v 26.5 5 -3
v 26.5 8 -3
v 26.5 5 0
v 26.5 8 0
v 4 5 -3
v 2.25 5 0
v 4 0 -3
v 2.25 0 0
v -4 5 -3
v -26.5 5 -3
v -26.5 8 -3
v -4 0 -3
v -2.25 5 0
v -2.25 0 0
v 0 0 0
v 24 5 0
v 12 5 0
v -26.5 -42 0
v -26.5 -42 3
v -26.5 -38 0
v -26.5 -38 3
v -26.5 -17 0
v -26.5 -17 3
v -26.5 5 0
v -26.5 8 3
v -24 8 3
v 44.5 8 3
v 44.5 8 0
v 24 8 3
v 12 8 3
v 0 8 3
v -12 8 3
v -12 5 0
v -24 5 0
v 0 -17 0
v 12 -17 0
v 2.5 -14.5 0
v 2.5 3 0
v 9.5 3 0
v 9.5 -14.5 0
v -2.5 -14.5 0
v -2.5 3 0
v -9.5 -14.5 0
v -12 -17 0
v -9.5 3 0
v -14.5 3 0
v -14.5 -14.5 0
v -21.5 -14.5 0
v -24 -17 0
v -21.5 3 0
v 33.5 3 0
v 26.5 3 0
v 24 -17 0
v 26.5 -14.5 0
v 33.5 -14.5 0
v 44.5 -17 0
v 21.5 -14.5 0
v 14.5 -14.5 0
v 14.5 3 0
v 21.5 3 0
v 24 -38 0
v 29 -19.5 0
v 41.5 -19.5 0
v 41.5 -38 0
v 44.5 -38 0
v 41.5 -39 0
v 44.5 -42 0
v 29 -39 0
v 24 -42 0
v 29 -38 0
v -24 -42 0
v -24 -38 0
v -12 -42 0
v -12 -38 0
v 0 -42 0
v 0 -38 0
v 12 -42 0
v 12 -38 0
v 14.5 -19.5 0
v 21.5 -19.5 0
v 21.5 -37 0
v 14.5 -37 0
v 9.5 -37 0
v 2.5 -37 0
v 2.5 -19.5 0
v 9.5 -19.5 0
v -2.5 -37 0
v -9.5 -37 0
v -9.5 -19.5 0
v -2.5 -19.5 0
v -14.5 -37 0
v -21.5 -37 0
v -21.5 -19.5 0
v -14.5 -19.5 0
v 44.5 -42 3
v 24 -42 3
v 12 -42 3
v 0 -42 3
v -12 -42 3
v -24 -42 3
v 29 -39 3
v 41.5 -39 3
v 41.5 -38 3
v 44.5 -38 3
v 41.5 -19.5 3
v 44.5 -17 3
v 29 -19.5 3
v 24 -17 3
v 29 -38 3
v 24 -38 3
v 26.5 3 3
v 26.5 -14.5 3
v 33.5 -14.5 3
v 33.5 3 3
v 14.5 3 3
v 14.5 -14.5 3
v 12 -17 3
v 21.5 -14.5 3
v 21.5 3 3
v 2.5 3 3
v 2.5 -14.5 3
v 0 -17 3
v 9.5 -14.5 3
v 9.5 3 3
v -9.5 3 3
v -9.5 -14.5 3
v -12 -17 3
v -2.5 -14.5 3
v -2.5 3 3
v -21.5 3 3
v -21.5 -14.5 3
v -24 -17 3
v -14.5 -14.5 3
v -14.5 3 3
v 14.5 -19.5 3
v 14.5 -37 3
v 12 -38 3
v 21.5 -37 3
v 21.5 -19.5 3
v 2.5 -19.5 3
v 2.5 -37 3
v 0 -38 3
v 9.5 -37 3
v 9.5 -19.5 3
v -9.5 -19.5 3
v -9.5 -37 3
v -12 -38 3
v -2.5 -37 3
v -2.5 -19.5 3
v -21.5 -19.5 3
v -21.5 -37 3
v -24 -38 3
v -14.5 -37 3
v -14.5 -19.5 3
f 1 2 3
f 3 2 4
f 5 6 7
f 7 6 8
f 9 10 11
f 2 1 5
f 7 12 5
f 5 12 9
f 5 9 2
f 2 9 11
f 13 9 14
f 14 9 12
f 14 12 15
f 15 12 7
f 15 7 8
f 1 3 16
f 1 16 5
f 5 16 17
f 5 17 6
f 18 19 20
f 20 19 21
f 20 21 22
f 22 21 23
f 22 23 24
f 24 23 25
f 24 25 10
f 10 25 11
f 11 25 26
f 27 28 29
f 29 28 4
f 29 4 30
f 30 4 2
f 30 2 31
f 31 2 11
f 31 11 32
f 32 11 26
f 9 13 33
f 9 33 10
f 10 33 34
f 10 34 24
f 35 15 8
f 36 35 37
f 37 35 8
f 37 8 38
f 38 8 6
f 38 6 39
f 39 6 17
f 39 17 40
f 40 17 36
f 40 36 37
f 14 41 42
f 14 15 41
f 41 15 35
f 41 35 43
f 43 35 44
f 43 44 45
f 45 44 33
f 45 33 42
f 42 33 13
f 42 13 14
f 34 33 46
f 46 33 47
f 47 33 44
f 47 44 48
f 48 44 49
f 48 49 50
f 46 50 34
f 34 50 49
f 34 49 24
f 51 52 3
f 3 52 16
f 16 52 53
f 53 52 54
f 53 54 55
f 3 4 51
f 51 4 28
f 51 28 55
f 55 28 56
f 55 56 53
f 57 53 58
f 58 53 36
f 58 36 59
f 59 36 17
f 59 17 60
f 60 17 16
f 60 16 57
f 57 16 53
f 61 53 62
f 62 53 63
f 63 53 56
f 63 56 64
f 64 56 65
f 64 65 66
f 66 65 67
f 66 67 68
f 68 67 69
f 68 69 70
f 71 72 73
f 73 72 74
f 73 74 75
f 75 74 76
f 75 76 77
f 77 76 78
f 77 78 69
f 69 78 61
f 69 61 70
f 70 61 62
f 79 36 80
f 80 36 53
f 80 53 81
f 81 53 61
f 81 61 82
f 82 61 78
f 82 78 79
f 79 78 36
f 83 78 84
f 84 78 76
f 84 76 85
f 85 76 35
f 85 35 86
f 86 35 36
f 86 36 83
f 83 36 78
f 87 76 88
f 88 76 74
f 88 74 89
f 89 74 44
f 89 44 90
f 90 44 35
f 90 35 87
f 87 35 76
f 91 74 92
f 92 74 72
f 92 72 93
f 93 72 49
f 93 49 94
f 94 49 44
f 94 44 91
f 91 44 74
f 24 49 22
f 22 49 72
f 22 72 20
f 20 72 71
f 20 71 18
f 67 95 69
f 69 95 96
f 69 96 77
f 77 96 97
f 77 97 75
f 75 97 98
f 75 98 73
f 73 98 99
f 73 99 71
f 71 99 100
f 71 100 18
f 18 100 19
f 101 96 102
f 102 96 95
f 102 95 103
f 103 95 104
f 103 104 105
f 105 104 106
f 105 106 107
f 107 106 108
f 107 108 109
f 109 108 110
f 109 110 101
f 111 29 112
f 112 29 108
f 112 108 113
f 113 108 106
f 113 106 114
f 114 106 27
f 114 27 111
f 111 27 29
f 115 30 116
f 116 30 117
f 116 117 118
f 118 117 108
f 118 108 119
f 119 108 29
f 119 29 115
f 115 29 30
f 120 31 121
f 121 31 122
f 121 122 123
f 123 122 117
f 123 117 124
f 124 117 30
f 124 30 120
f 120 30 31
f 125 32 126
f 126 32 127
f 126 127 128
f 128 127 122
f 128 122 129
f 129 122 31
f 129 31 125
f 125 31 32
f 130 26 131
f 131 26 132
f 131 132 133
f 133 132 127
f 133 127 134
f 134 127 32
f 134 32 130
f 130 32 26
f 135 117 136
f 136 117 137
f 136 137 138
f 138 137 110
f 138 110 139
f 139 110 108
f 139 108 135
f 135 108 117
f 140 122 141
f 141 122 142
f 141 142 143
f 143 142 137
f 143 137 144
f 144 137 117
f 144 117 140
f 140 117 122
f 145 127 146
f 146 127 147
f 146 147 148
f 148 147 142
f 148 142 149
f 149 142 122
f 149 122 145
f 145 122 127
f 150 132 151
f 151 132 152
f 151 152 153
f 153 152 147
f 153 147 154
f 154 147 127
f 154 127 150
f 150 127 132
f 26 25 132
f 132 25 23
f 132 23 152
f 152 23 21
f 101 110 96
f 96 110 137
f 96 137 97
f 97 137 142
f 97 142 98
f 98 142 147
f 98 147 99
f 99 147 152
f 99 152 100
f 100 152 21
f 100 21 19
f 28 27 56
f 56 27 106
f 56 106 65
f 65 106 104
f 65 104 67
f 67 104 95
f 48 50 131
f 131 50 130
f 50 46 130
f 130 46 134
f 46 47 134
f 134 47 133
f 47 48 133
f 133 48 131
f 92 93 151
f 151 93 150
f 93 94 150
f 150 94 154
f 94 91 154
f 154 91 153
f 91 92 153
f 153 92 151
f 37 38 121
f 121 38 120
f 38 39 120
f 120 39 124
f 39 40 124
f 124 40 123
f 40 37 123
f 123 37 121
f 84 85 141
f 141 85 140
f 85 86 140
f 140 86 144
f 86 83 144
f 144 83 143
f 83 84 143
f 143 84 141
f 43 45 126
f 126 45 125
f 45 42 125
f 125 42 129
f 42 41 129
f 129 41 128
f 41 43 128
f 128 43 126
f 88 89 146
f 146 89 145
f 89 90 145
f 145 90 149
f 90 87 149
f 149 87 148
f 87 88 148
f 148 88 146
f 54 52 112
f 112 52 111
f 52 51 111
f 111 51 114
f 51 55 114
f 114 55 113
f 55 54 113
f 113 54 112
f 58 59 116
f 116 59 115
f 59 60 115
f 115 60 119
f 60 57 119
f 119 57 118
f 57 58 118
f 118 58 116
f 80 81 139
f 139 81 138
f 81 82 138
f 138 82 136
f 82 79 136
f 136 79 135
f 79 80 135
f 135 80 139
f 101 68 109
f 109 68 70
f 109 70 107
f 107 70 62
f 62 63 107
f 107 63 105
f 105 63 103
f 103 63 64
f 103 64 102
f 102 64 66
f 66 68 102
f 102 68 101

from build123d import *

# Parameters (mm, degrees)
EXTRUDE_1_DEPTH     = 5
SKETCH_2_W          = 53
SKETCH_2_H          = 3
EXTRUDE_2_DEPTH     = 3
SKETCH_3_W          = 53
SKETCH_3_H          = 50
EXTRUDE_3_DEPTH     = 3
SKETCH_4_W          = 3
SKETCH_4_H          = 50
EXTRUDE_4_DEPTH     = 18
SKETCH_5_W          = 7
SKETCH_5_H          = 17.5
CUT_EXTRUDE_1_DEPTH = 3
SKETCH_7_W          = 12.5
SKETCH_7_H          = 19.5
CUT_EXTRUDE_2_DEPTH = 3


with BuildPart() as part:
    # Эскиз1 → Бобышка-Вытянуть1 (new body)
    with BuildSketch(Plane(origin=(0, 0, 0), x_dir=(1, 0, 0), z_dir=(0, 1, 0))):
        Polygon((2.25, 0), (-2.25, 0), (-4, 3), (4, 3), align=None)
    extrude(amount=EXTRUDE_1_DEPTH)

    # Эскиз2 → Бобышка-Вытянуть2 (add)
    with BuildSketch(Plane(origin=(0, 5, 0), x_dir=(1, 0, 0), z_dir=(0, 1, 0))):
        with Locations((0, 1.5)):
            Rectangle(SKETCH_2_W, SKETCH_2_H)
    extrude(amount=EXTRUDE_2_DEPTH)

    # Эскиз3 → Бобышка-Вытянуть3 (add)
    with BuildSketch(Plane.XY):
        with Locations((0, -17)):
            Rectangle(SKETCH_3_W, SKETCH_3_H)
    extrude(amount=EXTRUDE_3_DEPTH)

    # Эскиз4 → Бобышка-Вытянуть4 (add)
    with BuildSketch(Plane(origin=(26.5, 0, 0), x_dir=(0, 0, -1), z_dir=(1, 0, 0))):
        with Locations((-1.5, -17)):
            Rectangle(SKETCH_4_W, SKETCH_4_H)
    extrude(amount=EXTRUDE_4_DEPTH)

    # Эскиз5 → Вырез-Вытянуть1 (cut)
    with BuildSketch(Plane.XY.offset(3)):
        with Locations((-18, -5.75)):
            Rectangle(SKETCH_5_W, SKETCH_5_H)
        with Locations((-18, -28.25)):
            Rectangle(SKETCH_5_W, SKETCH_5_H)
        with Locations((6, -5.75)):
            Rectangle(SKETCH_5_W, SKETCH_5_H)
        with Locations((6, -28.25)):
            Rectangle(SKETCH_5_W, SKETCH_5_H)
        with Locations((-6, -5.75)):
            Rectangle(SKETCH_5_W, SKETCH_5_H)
        with Locations((-6, -28.25)):
            Rectangle(SKETCH_5_W, SKETCH_5_H)
        with Locations((30, -5.75)):
            Rectangle(SKETCH_5_W, SKETCH_5_H)
        with Locations((18, -5.75)):
            Rectangle(SKETCH_5_W, SKETCH_5_H)
        with Locations((18, -28.25)):
            Rectangle(SKETCH_5_W, SKETCH_5_H)
    extrude(amount=-CUT_EXTRUDE_1_DEPTH, mode=Mode.SUBTRACT)

    # Эскиз7 → Вырез-Вытянуть2 (cut)
    with BuildSketch(Plane.XY.offset(3)):
        with Locations((35.25, -29.25)):
            Rectangle(SKETCH_7_W, SKETCH_7_H)
    extrude(amount=-CUT_EXTRUDE_2_DEPTH, mode=Mode.SUBTRACT)


solid = part.part
